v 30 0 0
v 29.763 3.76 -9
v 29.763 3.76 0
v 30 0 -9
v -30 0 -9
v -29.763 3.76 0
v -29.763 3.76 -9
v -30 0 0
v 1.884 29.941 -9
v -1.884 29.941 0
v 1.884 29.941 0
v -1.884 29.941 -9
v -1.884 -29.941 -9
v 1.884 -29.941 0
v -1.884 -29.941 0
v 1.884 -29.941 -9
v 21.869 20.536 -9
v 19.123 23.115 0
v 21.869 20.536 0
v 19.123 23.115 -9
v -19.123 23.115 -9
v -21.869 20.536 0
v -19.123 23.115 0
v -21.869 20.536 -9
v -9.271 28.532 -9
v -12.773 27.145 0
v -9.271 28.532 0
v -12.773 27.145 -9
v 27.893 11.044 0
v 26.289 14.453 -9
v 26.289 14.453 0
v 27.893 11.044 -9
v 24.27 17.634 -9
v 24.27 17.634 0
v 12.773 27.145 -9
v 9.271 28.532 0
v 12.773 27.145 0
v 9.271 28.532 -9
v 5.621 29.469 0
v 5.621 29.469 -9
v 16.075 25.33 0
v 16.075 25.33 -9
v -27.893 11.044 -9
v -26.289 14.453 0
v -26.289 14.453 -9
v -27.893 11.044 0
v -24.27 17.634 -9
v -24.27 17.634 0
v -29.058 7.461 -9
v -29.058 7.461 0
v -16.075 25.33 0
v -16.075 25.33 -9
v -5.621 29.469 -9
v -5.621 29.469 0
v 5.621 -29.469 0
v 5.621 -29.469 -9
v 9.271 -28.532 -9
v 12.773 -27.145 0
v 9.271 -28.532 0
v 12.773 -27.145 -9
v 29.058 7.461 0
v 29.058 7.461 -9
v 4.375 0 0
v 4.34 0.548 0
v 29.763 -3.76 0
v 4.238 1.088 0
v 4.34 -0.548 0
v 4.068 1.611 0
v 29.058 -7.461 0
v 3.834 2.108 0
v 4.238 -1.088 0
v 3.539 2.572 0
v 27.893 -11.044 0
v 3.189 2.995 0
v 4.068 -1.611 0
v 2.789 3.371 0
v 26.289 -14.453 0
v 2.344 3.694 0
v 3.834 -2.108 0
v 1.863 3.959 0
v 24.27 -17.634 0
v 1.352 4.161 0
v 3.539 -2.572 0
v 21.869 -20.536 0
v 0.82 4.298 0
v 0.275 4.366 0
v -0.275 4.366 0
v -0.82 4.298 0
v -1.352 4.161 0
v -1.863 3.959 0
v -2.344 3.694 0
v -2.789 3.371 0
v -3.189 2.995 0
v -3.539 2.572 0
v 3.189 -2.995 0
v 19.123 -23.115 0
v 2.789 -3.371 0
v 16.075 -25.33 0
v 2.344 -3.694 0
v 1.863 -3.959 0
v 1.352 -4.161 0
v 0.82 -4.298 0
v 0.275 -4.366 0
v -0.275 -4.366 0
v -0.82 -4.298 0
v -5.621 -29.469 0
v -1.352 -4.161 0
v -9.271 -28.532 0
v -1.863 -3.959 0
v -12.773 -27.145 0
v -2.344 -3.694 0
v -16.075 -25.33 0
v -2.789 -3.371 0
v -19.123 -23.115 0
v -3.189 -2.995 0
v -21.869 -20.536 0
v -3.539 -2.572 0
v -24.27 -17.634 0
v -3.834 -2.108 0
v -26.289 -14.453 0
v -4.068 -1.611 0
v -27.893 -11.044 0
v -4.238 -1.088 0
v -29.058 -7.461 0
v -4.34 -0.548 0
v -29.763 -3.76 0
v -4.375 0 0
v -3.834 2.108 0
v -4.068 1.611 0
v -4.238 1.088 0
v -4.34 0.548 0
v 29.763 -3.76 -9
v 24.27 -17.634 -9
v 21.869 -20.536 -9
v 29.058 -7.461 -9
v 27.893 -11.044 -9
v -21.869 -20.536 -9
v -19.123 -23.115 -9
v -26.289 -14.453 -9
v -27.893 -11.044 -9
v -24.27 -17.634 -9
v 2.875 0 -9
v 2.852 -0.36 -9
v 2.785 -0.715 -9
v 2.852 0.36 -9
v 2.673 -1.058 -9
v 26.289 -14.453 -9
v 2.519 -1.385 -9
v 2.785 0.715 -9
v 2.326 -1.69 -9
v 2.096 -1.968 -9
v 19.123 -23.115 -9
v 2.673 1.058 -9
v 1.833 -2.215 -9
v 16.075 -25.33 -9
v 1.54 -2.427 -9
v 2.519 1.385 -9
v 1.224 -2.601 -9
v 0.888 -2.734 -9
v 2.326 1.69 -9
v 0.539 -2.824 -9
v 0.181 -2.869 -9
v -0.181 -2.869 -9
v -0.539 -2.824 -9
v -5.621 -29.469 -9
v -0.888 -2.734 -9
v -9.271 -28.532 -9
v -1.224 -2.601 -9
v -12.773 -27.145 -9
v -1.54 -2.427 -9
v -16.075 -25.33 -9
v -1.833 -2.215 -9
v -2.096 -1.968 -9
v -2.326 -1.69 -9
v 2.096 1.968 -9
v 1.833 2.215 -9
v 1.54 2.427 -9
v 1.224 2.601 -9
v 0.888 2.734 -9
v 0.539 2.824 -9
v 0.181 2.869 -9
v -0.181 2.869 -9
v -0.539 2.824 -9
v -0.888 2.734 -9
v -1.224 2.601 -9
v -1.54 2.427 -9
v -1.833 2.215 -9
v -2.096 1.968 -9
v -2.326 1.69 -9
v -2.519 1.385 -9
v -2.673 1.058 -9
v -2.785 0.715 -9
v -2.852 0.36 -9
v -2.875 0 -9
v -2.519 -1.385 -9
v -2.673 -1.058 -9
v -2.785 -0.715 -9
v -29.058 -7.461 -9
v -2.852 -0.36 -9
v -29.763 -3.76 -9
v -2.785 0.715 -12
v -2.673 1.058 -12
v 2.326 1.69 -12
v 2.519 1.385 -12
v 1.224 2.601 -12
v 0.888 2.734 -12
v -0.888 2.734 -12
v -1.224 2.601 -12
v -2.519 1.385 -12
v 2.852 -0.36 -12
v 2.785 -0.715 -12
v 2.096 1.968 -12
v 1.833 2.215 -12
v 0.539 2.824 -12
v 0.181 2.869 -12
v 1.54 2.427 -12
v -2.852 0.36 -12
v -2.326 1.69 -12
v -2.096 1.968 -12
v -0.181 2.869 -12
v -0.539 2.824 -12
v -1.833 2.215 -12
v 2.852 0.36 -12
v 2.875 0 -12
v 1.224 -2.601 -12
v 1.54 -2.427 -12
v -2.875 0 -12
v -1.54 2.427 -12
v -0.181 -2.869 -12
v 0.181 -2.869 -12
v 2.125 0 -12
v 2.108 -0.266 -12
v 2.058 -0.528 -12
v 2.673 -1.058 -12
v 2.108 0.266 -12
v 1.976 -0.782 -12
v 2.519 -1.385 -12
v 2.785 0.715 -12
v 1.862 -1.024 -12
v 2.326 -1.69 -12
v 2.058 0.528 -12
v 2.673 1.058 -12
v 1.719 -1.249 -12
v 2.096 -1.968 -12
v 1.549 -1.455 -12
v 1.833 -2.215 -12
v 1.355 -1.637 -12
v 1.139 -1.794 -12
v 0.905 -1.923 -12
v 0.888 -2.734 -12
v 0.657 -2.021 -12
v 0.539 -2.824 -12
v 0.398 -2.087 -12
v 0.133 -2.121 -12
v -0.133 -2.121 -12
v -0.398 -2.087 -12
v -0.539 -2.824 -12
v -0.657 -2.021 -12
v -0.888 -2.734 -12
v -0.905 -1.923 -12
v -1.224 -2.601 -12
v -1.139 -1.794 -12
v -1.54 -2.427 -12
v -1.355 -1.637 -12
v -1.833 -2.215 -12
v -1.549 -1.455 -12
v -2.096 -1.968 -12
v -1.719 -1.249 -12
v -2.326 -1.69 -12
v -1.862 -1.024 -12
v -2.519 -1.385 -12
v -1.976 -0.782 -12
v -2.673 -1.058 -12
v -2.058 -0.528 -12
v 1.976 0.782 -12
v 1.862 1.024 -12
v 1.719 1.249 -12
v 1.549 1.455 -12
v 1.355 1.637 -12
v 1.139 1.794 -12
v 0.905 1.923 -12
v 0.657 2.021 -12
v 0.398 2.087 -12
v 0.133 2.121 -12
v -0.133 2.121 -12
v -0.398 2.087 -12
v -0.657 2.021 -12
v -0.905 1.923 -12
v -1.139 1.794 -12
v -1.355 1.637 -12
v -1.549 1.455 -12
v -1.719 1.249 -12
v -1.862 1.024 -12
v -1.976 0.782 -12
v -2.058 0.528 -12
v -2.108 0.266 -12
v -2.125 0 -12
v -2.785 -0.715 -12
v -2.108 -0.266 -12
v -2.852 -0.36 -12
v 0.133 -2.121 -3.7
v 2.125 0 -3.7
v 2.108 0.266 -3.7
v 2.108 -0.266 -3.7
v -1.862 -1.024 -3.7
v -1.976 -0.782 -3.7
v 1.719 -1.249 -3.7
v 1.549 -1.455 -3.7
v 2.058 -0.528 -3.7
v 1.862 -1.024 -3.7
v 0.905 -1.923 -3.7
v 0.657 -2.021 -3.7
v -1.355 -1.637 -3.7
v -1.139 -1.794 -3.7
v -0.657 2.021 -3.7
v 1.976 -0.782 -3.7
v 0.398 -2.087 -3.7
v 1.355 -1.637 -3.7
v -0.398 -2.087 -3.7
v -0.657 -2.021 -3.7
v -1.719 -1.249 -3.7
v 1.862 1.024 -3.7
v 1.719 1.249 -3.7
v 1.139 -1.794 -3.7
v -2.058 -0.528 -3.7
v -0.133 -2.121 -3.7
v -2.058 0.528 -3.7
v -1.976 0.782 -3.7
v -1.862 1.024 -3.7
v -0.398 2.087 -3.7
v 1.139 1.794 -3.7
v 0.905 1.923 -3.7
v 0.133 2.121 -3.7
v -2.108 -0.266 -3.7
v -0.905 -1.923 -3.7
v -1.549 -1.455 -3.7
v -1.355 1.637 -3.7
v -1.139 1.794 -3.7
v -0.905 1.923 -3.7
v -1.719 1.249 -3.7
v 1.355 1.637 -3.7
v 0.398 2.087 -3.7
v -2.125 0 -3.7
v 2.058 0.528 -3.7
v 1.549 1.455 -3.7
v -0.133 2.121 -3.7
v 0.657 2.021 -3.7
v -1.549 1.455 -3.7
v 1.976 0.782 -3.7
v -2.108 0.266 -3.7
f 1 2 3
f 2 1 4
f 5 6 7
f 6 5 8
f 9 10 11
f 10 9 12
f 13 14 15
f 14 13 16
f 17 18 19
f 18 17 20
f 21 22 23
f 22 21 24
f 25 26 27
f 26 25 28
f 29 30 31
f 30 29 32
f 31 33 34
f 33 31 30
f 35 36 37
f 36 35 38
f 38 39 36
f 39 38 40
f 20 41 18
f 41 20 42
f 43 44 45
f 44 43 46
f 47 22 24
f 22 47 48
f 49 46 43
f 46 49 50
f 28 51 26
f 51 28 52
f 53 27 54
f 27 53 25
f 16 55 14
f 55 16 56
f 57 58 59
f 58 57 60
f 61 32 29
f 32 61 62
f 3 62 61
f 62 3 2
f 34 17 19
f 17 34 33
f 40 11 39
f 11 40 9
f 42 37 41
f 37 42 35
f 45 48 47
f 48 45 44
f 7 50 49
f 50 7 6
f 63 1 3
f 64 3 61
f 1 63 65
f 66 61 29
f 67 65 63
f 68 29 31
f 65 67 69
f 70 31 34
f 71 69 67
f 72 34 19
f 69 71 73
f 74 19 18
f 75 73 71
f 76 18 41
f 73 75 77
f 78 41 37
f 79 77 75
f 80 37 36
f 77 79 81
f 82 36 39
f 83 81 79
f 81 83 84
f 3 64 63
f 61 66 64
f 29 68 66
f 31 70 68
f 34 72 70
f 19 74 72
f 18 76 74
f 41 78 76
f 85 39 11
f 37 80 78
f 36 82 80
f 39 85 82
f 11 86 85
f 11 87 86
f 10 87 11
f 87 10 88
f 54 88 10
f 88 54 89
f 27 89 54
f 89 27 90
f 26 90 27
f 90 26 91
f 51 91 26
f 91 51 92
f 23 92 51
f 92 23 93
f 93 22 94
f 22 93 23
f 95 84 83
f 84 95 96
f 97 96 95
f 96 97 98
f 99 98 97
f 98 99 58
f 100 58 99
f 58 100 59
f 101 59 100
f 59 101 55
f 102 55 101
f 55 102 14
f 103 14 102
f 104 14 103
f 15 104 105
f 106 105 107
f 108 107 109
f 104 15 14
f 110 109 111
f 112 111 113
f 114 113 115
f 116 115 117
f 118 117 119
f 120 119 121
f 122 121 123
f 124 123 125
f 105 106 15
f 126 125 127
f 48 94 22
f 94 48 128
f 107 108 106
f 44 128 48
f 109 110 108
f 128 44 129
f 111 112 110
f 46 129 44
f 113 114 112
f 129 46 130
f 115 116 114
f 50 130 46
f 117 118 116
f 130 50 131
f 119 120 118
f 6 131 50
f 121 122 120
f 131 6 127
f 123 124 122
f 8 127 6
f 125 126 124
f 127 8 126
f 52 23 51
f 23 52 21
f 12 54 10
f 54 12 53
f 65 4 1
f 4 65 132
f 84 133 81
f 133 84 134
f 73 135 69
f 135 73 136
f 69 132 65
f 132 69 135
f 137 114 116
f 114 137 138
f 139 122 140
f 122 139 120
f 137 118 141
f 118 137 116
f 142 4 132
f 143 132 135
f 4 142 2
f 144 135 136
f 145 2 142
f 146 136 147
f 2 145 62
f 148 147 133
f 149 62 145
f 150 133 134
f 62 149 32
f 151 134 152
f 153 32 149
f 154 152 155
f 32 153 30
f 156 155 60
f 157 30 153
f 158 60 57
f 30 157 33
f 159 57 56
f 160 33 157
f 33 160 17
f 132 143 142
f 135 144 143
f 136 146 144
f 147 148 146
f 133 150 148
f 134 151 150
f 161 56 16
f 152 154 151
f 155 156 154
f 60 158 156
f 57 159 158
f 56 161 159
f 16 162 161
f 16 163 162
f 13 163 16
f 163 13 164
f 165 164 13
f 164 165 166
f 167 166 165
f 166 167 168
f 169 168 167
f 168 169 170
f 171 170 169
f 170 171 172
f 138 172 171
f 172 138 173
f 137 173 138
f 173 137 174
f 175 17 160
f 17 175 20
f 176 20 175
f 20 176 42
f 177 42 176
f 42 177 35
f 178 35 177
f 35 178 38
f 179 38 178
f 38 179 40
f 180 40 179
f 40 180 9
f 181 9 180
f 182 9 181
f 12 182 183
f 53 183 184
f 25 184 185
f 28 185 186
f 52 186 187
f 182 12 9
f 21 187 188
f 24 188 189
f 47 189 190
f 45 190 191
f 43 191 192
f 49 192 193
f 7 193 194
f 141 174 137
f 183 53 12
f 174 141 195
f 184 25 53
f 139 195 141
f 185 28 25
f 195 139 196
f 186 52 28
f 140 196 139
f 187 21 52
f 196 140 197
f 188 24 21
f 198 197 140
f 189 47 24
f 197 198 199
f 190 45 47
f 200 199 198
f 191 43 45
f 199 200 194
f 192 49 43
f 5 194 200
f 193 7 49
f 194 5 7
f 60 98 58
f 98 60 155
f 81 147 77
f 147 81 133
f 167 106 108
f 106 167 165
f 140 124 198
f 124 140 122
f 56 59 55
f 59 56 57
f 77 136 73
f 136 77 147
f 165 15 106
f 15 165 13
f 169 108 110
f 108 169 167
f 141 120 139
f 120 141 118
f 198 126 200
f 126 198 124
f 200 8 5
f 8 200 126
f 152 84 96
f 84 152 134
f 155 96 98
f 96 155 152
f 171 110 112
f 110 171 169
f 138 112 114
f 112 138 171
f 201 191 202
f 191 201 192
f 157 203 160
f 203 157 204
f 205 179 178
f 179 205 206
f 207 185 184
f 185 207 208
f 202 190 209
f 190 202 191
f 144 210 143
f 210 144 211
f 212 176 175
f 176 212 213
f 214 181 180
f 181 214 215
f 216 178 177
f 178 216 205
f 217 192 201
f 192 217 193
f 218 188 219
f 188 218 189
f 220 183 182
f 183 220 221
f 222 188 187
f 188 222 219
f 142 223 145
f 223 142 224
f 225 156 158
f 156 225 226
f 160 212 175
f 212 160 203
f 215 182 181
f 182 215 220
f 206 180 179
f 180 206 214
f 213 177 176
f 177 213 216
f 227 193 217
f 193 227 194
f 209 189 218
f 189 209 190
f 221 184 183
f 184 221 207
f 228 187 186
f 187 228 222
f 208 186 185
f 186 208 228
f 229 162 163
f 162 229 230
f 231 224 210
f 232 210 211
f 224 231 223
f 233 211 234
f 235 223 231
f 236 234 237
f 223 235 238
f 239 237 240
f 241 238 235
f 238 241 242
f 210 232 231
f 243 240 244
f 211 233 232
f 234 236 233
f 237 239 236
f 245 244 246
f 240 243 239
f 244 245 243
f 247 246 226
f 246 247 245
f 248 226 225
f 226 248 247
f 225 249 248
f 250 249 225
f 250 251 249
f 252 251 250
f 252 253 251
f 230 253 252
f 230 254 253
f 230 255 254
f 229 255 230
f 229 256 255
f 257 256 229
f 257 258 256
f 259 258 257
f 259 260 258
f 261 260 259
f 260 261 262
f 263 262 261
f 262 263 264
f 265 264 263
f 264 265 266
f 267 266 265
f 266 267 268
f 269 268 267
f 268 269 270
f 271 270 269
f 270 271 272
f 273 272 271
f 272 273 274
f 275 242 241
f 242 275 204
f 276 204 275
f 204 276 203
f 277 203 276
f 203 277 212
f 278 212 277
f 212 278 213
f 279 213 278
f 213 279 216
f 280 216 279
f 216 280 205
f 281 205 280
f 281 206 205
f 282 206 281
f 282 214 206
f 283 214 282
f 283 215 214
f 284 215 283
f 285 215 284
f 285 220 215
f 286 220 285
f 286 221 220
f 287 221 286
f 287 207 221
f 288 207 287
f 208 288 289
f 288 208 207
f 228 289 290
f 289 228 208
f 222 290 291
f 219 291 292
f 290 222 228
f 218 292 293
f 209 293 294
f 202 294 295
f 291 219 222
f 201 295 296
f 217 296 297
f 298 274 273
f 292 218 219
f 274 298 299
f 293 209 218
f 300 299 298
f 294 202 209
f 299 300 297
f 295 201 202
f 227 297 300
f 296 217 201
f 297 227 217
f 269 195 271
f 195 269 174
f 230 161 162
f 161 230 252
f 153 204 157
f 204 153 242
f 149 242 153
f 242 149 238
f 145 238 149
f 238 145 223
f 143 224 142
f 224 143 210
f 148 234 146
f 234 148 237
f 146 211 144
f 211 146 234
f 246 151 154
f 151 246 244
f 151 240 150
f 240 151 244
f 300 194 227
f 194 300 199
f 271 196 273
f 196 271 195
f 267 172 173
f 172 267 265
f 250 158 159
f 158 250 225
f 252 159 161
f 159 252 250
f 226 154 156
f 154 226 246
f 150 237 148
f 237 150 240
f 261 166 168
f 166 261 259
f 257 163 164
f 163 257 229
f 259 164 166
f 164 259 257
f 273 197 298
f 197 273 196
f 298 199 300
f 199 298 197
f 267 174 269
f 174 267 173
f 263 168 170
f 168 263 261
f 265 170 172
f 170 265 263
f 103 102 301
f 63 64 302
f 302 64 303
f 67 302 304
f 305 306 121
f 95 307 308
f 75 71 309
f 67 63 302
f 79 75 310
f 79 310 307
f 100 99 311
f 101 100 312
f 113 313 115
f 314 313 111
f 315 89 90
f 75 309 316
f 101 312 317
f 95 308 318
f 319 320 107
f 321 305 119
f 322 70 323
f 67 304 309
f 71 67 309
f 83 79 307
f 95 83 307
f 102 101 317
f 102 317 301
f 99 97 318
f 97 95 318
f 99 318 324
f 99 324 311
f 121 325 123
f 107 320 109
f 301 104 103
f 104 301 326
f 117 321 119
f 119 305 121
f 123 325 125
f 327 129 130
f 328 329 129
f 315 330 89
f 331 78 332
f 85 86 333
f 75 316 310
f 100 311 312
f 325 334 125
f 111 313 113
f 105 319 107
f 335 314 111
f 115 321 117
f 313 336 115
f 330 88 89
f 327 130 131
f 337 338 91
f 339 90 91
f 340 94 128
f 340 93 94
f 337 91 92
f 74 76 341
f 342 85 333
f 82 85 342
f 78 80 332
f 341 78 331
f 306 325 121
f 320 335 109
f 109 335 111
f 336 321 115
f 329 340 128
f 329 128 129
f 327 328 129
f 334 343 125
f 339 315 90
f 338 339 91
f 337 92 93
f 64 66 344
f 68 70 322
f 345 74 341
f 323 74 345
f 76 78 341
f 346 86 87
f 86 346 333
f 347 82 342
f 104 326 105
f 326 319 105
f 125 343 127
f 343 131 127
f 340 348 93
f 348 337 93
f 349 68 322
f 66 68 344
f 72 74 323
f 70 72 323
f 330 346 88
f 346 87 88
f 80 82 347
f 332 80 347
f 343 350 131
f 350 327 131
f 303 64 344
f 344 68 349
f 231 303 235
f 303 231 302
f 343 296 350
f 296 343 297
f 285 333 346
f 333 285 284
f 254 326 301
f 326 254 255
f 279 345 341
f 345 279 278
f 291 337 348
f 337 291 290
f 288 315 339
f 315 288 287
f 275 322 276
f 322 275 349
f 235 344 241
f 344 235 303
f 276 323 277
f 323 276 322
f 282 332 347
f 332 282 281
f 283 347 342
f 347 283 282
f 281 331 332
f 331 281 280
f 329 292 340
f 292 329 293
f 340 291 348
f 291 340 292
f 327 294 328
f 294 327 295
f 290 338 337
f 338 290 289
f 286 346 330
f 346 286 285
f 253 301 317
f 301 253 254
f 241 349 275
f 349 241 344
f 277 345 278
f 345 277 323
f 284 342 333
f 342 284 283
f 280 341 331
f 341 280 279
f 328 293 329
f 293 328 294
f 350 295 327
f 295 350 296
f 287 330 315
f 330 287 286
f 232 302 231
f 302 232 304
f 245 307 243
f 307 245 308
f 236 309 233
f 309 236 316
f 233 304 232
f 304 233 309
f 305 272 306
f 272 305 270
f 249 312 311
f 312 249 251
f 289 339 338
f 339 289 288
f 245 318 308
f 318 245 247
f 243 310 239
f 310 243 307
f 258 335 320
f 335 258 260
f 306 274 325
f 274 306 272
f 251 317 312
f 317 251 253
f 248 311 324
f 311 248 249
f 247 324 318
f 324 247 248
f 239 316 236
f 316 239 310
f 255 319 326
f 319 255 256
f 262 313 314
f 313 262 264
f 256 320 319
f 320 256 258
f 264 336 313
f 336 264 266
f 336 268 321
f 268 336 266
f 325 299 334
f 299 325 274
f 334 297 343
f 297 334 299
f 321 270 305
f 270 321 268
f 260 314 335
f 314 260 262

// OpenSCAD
$fn = 50;


difference() {
	union() {
		translate(v = [0, 0, -9.0000000000]) {
			cylinder(h = 9, r = 30.0000000000);
		}
		translate(v = [0, 0, -12.0000000000]) {
			cylinder(h = 12, r = 2.8750000000);
		}
	}
	union() {
		translate(v = [0, 0, 0]) {
			rotate(a = [0, 0, 0]) {
				difference() {
					union() {
						translate(v = [0, 0, -12.0000000000]) {
							cylinder(h = 12, r = 2.0000000000);
						}
						translate(v = [0, 0, -3.7000000000]) {
							cylinder(h = 3.7000000000, r1 = 2.1250000000, r2 = 4.3750000000);
						}
						translate(v = [0, 0, -12.0000000000]) {
							cylinder(h = 12, r = 2.1250000000);
						}
						translate(v = [0, 0, -12.0000000000]) {
							cylinder(h = 12, r = 2.0000000000);
						}
					}
					union();
				}
			}
		}
	}
}
